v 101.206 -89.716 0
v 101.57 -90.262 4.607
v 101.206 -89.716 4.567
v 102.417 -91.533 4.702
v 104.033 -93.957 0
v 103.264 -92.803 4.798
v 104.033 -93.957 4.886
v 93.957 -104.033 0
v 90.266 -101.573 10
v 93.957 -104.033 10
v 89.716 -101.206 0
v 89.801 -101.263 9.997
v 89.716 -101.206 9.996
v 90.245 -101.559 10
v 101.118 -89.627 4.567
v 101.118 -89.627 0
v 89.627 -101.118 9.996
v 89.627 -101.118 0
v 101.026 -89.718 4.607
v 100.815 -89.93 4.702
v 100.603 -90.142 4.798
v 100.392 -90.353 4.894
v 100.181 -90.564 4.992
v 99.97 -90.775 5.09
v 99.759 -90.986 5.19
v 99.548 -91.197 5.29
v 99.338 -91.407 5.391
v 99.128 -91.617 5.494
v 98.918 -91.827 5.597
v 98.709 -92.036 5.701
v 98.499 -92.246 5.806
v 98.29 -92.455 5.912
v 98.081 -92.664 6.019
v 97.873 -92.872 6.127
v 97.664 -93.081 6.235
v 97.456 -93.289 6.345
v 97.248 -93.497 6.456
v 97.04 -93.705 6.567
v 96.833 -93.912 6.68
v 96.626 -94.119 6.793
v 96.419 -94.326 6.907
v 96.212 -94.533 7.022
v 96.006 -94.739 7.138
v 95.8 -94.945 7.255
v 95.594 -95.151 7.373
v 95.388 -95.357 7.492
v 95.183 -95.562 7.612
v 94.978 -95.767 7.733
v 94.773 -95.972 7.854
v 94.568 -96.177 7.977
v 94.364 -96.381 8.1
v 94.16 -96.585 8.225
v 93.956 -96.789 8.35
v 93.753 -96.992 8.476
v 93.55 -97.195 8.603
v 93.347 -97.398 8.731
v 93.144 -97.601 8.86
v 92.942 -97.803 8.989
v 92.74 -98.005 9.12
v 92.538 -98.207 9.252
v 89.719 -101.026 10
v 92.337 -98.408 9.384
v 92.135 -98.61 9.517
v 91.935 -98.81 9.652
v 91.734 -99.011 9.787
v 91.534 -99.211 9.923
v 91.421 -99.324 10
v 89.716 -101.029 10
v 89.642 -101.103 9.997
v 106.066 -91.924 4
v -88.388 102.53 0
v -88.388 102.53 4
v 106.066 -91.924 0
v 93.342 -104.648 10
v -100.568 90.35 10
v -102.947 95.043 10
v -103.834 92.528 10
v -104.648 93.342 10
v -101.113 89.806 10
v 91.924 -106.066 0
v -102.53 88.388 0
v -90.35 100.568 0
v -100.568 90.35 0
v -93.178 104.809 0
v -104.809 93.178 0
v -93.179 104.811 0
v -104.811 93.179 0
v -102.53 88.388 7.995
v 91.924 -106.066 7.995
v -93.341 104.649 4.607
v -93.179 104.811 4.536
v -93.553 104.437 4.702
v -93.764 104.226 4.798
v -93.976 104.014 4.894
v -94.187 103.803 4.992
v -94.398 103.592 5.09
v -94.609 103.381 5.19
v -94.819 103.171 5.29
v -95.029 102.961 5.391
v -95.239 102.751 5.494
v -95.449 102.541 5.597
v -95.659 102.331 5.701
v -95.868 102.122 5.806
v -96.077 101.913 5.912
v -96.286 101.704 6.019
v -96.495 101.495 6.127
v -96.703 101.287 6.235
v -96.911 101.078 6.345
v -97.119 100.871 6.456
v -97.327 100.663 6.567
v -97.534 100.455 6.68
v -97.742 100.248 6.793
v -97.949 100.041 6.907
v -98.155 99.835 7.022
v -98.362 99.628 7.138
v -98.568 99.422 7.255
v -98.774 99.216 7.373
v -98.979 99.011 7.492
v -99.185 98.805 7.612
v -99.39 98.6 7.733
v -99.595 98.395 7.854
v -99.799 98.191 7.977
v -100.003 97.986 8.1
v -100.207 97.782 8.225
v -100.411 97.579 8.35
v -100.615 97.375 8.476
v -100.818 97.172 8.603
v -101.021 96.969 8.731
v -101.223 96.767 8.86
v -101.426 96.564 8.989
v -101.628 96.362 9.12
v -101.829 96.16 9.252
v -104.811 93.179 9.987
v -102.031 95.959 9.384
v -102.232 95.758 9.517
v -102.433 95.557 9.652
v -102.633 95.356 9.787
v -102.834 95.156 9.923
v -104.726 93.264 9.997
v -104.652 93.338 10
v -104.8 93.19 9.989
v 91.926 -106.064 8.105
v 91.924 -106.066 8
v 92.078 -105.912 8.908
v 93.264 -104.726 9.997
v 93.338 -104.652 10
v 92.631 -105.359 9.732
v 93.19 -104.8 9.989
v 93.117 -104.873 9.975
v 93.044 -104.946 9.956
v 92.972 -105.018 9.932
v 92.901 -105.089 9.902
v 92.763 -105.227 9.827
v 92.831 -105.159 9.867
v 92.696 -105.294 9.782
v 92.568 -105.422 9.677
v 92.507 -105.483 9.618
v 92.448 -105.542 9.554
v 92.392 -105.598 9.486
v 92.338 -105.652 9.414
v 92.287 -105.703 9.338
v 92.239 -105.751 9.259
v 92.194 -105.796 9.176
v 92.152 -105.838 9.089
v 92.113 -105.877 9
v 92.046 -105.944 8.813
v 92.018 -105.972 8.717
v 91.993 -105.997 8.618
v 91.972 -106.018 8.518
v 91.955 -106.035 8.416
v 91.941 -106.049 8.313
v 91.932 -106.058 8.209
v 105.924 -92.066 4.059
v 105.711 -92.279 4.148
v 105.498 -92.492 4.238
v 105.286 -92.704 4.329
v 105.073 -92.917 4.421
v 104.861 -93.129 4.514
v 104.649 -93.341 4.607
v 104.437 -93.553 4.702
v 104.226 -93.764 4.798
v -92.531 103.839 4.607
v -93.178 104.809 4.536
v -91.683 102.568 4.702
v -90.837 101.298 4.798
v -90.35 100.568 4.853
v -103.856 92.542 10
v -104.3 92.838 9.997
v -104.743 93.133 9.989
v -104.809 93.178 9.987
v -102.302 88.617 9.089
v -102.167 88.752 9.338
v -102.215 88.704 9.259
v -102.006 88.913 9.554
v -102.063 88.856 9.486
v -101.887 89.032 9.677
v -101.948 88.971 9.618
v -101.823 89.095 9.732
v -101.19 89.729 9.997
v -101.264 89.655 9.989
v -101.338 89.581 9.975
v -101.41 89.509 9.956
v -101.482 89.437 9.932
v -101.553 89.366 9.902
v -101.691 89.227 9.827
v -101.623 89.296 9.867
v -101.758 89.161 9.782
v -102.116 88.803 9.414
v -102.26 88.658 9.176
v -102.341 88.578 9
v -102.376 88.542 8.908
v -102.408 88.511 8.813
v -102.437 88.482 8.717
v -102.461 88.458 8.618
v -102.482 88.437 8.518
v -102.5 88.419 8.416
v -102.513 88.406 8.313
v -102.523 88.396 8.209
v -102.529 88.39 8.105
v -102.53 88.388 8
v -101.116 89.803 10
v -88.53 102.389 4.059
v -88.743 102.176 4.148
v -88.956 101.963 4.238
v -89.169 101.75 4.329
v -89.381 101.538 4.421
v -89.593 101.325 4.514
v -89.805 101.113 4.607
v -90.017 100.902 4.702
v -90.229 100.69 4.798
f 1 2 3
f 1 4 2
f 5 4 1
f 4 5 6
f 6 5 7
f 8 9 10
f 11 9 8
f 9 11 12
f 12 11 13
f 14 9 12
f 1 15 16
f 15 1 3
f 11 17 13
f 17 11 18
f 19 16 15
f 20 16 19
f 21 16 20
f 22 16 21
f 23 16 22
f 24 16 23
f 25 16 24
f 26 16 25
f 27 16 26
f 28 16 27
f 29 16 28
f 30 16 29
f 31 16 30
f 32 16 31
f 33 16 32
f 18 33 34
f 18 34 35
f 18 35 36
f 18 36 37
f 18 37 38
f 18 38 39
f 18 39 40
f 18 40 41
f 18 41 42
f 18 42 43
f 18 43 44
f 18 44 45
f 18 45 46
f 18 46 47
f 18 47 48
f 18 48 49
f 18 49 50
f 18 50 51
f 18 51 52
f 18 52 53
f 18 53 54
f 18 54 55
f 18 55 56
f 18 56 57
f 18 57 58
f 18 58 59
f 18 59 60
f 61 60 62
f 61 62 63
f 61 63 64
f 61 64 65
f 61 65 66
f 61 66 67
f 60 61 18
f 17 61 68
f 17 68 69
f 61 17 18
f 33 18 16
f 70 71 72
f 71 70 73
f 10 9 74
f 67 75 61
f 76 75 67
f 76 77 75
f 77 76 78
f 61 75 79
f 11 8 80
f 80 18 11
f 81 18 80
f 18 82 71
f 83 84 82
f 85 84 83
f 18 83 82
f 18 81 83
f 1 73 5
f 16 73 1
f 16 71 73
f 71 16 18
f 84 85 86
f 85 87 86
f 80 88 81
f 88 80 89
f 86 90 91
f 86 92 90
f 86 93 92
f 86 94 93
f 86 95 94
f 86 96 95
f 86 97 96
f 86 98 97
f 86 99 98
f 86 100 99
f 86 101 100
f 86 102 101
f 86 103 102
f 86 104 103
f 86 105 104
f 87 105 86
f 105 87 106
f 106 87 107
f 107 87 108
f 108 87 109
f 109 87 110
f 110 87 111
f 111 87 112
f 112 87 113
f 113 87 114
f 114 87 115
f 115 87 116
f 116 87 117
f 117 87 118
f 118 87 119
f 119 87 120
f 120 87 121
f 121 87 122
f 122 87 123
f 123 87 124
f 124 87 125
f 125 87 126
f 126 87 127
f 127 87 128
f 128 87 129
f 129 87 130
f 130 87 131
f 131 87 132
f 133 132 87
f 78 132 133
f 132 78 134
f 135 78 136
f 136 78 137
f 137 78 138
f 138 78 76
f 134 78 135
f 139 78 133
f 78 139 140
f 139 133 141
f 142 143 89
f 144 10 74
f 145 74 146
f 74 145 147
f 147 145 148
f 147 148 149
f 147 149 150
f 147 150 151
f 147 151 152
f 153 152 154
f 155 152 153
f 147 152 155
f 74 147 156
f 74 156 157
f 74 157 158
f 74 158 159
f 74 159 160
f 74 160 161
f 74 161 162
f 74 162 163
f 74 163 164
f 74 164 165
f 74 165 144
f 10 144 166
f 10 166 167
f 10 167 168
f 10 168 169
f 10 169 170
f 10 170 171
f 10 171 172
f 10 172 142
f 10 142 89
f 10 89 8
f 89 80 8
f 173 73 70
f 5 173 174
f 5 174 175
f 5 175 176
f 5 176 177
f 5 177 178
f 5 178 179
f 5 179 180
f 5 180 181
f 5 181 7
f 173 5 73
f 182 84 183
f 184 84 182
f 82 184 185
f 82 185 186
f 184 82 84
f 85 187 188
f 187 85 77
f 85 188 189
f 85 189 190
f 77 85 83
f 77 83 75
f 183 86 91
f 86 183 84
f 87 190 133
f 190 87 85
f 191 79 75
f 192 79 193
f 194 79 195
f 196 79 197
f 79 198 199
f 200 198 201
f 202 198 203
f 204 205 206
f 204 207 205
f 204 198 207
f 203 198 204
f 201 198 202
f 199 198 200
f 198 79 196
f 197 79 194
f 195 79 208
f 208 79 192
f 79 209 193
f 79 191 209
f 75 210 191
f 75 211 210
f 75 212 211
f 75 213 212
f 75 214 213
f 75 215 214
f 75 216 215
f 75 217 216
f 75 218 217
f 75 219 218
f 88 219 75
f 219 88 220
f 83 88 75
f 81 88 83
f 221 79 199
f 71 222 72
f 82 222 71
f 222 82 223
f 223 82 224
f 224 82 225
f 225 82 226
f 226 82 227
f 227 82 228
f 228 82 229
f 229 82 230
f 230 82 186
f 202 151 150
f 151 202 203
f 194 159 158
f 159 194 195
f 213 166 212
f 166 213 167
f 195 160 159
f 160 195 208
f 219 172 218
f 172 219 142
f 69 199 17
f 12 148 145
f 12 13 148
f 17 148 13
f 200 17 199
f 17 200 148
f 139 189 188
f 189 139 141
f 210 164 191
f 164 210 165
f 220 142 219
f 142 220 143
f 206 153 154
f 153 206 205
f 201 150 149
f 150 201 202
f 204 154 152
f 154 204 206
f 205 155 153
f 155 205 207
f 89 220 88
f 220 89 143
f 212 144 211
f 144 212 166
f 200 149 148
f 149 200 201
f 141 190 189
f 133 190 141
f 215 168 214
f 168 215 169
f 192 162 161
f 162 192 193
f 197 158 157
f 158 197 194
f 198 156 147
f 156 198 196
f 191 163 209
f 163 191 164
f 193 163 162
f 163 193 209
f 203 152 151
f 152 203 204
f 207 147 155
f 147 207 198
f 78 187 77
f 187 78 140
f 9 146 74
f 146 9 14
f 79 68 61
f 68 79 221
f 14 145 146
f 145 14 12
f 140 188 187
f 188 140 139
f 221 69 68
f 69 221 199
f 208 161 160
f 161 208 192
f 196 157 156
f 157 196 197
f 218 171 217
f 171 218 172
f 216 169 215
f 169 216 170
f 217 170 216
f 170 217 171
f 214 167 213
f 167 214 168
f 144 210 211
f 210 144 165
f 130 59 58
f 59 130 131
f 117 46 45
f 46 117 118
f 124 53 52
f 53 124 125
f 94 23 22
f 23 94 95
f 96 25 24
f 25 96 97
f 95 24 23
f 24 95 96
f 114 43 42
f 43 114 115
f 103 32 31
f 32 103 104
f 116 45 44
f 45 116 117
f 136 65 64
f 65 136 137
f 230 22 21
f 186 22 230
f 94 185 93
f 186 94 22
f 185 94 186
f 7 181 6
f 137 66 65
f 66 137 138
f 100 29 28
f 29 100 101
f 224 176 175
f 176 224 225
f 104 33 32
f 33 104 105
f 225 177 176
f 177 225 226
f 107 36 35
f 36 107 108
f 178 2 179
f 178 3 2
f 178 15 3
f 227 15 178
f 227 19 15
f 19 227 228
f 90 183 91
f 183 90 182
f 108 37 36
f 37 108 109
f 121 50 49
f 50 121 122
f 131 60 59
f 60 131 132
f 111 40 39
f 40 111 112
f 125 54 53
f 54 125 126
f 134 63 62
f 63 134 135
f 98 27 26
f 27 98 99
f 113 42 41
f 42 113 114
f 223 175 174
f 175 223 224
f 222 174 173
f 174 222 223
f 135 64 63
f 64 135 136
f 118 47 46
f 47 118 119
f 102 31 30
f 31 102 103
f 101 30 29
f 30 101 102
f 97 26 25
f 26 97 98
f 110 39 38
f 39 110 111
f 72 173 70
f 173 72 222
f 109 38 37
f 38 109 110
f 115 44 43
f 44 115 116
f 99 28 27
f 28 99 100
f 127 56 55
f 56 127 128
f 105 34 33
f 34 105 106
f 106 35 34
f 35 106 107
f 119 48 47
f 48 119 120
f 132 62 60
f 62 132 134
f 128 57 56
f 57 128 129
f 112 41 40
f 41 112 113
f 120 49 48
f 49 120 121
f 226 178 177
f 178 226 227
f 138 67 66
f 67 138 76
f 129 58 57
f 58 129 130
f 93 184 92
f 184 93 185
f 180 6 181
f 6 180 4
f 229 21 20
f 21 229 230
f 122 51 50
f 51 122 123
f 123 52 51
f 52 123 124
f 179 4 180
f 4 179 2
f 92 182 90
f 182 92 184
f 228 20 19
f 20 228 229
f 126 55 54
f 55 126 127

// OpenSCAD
// MIT Licence Copyright Jim dodgen 2025

spool_d = 200;

height = 10;
depth = 20;  // actual is less spool_d cut out
width = 560;  // I will chop it into pieces for your printer
printer_size = 256;  // min of x or y usualy the same


diagional_c =  sqrt((printer_size*printer_size) + (printer_size*printer_size));
echo("C length", diagional_c);

diaginal_reduction = floor(depth/sqrt(2)+8);
max_piece_width = diagional_c-diaginal_reduction;
pieces = ceil(width/max_piece_width);
echo("pieces", pieces);
each_piece = width/pieces;
echo("each piece", each_piece);



echo("xy reduction", ceil(diaginal_reduction));
rotate([0,0,-45])
{
//cube([max_piece_width, depth, height], center=true);
difference()
    {
    translate([each_piece/2,0,0])
        rotate([0,0,90])
            female_dovetail(max_width=depth-4, min_width=depth-6, depth=5, height=height,           block_width=depth, block_depth=each_piece, clearance=0.25);
    translate([(-each_piece/2)+5,0,0])
        rotate([0,0,90])
            female_dovetail(max_width=depth-3.8, min_width=depth-5.8, depth=5, 
            height=height, block_width=depth, block_depth=10, clearance=0.25);

     translate([-each_piece/2,0+38,spool_d/2])
        rotate([0,90,0]) cylinder(d=spool_d, h=each_piece, $fn=2000);
     translate([-each_piece/2,-depth/2, height])rotate([0,90,0])
        fillet(0, 2,each_piece, $fn=120);   
    }
}

module fillet(rot, r, h) {
    translate([r / 2, r / 2, h/2])
    rotate([0,0,rot]) difference() {
        cube([r + 0.01, r + 0.01, h], center = true);
        translate([r/2, r/2, 0])
            cylinder(r = r, h = h + 1, center = true);
    }
}
 
//   dovetail code   //
/* translate([0,-15,0]) 
	union() {
		male_dovetail(max_width=10, min_width=8, depth=5, height=30, cutout_width=3, cutout_depth=4);
		translate([-10,-5,0]) cube([20,5,30]);
	}
*/

module female_dovetail_negative(max_width=11, min_width=5, depth=5, height=30, clearance=0.25) {
	union() {
		translate([0,-0.001,-0.05])
			dovetail_3d(max_width+clearance,min_width+clearance,depth,height+0.1);
			translate([-(max_width+clearance)/2, depth-0.002,-0.5])
				cube([max_width+clearance,clearance/2,height+1]);
	}
}

module female_dovetail(max_width=11, min_width=5, depth=5, height=30, block_width=15, block_depth=9, clearance=0.25) {
		difference() {
			translate([-block_width/2,0,0]) cube([block_width, block_depth, height]);
			female_dovetail_negative(max_width, min_width, depth, height, clearance);
		}
}

module male_dovetail(max_width=11, min_width=5, depth=5, height=30, cutout_width=5, cutout_depth=3.5) {
	difference() {
		dovetail_3d(max_width,min_width,depth,height);
		translate([0.001,depth+0.001,-0.05])
			dovetail_cutout(cutout_width, cutout_depth, height+0.1);
	}
}

module dovetail_3d(max_width=11, min_width=5, depth=5, height=30) {
	linear_extrude(height=height, convexity=2)
		dovetail_2d(max_width,min_width,depth);
}

module dovetail_2d(max_width=11, min_width=5, depth=5) {
	angle=atan((max_width/2-min_width/2)/depth);
	echo("angle: ", angle);
	polygon(paths=[[0,1,2,3,0]], points=[[-min_width/2,0], [-max_width/2,depth], [max_width/2, depth], [min_width/2,0]]);
}

module dovetail_cutout(width=5, depth=4, height=30) {
	translate([0,-depth+width/2,0])
		union() {
			translate([-width/2,0,0])
				cube([width,depth-width/2,height]);
			difference() {
				cylinder(r=width/2, h=height, $fs=0.25);
				translate([-width/2-0.05,0.05,-0.05]) cube([width+0.1,width+0.1,height+0.1]);
			}
		}
}
